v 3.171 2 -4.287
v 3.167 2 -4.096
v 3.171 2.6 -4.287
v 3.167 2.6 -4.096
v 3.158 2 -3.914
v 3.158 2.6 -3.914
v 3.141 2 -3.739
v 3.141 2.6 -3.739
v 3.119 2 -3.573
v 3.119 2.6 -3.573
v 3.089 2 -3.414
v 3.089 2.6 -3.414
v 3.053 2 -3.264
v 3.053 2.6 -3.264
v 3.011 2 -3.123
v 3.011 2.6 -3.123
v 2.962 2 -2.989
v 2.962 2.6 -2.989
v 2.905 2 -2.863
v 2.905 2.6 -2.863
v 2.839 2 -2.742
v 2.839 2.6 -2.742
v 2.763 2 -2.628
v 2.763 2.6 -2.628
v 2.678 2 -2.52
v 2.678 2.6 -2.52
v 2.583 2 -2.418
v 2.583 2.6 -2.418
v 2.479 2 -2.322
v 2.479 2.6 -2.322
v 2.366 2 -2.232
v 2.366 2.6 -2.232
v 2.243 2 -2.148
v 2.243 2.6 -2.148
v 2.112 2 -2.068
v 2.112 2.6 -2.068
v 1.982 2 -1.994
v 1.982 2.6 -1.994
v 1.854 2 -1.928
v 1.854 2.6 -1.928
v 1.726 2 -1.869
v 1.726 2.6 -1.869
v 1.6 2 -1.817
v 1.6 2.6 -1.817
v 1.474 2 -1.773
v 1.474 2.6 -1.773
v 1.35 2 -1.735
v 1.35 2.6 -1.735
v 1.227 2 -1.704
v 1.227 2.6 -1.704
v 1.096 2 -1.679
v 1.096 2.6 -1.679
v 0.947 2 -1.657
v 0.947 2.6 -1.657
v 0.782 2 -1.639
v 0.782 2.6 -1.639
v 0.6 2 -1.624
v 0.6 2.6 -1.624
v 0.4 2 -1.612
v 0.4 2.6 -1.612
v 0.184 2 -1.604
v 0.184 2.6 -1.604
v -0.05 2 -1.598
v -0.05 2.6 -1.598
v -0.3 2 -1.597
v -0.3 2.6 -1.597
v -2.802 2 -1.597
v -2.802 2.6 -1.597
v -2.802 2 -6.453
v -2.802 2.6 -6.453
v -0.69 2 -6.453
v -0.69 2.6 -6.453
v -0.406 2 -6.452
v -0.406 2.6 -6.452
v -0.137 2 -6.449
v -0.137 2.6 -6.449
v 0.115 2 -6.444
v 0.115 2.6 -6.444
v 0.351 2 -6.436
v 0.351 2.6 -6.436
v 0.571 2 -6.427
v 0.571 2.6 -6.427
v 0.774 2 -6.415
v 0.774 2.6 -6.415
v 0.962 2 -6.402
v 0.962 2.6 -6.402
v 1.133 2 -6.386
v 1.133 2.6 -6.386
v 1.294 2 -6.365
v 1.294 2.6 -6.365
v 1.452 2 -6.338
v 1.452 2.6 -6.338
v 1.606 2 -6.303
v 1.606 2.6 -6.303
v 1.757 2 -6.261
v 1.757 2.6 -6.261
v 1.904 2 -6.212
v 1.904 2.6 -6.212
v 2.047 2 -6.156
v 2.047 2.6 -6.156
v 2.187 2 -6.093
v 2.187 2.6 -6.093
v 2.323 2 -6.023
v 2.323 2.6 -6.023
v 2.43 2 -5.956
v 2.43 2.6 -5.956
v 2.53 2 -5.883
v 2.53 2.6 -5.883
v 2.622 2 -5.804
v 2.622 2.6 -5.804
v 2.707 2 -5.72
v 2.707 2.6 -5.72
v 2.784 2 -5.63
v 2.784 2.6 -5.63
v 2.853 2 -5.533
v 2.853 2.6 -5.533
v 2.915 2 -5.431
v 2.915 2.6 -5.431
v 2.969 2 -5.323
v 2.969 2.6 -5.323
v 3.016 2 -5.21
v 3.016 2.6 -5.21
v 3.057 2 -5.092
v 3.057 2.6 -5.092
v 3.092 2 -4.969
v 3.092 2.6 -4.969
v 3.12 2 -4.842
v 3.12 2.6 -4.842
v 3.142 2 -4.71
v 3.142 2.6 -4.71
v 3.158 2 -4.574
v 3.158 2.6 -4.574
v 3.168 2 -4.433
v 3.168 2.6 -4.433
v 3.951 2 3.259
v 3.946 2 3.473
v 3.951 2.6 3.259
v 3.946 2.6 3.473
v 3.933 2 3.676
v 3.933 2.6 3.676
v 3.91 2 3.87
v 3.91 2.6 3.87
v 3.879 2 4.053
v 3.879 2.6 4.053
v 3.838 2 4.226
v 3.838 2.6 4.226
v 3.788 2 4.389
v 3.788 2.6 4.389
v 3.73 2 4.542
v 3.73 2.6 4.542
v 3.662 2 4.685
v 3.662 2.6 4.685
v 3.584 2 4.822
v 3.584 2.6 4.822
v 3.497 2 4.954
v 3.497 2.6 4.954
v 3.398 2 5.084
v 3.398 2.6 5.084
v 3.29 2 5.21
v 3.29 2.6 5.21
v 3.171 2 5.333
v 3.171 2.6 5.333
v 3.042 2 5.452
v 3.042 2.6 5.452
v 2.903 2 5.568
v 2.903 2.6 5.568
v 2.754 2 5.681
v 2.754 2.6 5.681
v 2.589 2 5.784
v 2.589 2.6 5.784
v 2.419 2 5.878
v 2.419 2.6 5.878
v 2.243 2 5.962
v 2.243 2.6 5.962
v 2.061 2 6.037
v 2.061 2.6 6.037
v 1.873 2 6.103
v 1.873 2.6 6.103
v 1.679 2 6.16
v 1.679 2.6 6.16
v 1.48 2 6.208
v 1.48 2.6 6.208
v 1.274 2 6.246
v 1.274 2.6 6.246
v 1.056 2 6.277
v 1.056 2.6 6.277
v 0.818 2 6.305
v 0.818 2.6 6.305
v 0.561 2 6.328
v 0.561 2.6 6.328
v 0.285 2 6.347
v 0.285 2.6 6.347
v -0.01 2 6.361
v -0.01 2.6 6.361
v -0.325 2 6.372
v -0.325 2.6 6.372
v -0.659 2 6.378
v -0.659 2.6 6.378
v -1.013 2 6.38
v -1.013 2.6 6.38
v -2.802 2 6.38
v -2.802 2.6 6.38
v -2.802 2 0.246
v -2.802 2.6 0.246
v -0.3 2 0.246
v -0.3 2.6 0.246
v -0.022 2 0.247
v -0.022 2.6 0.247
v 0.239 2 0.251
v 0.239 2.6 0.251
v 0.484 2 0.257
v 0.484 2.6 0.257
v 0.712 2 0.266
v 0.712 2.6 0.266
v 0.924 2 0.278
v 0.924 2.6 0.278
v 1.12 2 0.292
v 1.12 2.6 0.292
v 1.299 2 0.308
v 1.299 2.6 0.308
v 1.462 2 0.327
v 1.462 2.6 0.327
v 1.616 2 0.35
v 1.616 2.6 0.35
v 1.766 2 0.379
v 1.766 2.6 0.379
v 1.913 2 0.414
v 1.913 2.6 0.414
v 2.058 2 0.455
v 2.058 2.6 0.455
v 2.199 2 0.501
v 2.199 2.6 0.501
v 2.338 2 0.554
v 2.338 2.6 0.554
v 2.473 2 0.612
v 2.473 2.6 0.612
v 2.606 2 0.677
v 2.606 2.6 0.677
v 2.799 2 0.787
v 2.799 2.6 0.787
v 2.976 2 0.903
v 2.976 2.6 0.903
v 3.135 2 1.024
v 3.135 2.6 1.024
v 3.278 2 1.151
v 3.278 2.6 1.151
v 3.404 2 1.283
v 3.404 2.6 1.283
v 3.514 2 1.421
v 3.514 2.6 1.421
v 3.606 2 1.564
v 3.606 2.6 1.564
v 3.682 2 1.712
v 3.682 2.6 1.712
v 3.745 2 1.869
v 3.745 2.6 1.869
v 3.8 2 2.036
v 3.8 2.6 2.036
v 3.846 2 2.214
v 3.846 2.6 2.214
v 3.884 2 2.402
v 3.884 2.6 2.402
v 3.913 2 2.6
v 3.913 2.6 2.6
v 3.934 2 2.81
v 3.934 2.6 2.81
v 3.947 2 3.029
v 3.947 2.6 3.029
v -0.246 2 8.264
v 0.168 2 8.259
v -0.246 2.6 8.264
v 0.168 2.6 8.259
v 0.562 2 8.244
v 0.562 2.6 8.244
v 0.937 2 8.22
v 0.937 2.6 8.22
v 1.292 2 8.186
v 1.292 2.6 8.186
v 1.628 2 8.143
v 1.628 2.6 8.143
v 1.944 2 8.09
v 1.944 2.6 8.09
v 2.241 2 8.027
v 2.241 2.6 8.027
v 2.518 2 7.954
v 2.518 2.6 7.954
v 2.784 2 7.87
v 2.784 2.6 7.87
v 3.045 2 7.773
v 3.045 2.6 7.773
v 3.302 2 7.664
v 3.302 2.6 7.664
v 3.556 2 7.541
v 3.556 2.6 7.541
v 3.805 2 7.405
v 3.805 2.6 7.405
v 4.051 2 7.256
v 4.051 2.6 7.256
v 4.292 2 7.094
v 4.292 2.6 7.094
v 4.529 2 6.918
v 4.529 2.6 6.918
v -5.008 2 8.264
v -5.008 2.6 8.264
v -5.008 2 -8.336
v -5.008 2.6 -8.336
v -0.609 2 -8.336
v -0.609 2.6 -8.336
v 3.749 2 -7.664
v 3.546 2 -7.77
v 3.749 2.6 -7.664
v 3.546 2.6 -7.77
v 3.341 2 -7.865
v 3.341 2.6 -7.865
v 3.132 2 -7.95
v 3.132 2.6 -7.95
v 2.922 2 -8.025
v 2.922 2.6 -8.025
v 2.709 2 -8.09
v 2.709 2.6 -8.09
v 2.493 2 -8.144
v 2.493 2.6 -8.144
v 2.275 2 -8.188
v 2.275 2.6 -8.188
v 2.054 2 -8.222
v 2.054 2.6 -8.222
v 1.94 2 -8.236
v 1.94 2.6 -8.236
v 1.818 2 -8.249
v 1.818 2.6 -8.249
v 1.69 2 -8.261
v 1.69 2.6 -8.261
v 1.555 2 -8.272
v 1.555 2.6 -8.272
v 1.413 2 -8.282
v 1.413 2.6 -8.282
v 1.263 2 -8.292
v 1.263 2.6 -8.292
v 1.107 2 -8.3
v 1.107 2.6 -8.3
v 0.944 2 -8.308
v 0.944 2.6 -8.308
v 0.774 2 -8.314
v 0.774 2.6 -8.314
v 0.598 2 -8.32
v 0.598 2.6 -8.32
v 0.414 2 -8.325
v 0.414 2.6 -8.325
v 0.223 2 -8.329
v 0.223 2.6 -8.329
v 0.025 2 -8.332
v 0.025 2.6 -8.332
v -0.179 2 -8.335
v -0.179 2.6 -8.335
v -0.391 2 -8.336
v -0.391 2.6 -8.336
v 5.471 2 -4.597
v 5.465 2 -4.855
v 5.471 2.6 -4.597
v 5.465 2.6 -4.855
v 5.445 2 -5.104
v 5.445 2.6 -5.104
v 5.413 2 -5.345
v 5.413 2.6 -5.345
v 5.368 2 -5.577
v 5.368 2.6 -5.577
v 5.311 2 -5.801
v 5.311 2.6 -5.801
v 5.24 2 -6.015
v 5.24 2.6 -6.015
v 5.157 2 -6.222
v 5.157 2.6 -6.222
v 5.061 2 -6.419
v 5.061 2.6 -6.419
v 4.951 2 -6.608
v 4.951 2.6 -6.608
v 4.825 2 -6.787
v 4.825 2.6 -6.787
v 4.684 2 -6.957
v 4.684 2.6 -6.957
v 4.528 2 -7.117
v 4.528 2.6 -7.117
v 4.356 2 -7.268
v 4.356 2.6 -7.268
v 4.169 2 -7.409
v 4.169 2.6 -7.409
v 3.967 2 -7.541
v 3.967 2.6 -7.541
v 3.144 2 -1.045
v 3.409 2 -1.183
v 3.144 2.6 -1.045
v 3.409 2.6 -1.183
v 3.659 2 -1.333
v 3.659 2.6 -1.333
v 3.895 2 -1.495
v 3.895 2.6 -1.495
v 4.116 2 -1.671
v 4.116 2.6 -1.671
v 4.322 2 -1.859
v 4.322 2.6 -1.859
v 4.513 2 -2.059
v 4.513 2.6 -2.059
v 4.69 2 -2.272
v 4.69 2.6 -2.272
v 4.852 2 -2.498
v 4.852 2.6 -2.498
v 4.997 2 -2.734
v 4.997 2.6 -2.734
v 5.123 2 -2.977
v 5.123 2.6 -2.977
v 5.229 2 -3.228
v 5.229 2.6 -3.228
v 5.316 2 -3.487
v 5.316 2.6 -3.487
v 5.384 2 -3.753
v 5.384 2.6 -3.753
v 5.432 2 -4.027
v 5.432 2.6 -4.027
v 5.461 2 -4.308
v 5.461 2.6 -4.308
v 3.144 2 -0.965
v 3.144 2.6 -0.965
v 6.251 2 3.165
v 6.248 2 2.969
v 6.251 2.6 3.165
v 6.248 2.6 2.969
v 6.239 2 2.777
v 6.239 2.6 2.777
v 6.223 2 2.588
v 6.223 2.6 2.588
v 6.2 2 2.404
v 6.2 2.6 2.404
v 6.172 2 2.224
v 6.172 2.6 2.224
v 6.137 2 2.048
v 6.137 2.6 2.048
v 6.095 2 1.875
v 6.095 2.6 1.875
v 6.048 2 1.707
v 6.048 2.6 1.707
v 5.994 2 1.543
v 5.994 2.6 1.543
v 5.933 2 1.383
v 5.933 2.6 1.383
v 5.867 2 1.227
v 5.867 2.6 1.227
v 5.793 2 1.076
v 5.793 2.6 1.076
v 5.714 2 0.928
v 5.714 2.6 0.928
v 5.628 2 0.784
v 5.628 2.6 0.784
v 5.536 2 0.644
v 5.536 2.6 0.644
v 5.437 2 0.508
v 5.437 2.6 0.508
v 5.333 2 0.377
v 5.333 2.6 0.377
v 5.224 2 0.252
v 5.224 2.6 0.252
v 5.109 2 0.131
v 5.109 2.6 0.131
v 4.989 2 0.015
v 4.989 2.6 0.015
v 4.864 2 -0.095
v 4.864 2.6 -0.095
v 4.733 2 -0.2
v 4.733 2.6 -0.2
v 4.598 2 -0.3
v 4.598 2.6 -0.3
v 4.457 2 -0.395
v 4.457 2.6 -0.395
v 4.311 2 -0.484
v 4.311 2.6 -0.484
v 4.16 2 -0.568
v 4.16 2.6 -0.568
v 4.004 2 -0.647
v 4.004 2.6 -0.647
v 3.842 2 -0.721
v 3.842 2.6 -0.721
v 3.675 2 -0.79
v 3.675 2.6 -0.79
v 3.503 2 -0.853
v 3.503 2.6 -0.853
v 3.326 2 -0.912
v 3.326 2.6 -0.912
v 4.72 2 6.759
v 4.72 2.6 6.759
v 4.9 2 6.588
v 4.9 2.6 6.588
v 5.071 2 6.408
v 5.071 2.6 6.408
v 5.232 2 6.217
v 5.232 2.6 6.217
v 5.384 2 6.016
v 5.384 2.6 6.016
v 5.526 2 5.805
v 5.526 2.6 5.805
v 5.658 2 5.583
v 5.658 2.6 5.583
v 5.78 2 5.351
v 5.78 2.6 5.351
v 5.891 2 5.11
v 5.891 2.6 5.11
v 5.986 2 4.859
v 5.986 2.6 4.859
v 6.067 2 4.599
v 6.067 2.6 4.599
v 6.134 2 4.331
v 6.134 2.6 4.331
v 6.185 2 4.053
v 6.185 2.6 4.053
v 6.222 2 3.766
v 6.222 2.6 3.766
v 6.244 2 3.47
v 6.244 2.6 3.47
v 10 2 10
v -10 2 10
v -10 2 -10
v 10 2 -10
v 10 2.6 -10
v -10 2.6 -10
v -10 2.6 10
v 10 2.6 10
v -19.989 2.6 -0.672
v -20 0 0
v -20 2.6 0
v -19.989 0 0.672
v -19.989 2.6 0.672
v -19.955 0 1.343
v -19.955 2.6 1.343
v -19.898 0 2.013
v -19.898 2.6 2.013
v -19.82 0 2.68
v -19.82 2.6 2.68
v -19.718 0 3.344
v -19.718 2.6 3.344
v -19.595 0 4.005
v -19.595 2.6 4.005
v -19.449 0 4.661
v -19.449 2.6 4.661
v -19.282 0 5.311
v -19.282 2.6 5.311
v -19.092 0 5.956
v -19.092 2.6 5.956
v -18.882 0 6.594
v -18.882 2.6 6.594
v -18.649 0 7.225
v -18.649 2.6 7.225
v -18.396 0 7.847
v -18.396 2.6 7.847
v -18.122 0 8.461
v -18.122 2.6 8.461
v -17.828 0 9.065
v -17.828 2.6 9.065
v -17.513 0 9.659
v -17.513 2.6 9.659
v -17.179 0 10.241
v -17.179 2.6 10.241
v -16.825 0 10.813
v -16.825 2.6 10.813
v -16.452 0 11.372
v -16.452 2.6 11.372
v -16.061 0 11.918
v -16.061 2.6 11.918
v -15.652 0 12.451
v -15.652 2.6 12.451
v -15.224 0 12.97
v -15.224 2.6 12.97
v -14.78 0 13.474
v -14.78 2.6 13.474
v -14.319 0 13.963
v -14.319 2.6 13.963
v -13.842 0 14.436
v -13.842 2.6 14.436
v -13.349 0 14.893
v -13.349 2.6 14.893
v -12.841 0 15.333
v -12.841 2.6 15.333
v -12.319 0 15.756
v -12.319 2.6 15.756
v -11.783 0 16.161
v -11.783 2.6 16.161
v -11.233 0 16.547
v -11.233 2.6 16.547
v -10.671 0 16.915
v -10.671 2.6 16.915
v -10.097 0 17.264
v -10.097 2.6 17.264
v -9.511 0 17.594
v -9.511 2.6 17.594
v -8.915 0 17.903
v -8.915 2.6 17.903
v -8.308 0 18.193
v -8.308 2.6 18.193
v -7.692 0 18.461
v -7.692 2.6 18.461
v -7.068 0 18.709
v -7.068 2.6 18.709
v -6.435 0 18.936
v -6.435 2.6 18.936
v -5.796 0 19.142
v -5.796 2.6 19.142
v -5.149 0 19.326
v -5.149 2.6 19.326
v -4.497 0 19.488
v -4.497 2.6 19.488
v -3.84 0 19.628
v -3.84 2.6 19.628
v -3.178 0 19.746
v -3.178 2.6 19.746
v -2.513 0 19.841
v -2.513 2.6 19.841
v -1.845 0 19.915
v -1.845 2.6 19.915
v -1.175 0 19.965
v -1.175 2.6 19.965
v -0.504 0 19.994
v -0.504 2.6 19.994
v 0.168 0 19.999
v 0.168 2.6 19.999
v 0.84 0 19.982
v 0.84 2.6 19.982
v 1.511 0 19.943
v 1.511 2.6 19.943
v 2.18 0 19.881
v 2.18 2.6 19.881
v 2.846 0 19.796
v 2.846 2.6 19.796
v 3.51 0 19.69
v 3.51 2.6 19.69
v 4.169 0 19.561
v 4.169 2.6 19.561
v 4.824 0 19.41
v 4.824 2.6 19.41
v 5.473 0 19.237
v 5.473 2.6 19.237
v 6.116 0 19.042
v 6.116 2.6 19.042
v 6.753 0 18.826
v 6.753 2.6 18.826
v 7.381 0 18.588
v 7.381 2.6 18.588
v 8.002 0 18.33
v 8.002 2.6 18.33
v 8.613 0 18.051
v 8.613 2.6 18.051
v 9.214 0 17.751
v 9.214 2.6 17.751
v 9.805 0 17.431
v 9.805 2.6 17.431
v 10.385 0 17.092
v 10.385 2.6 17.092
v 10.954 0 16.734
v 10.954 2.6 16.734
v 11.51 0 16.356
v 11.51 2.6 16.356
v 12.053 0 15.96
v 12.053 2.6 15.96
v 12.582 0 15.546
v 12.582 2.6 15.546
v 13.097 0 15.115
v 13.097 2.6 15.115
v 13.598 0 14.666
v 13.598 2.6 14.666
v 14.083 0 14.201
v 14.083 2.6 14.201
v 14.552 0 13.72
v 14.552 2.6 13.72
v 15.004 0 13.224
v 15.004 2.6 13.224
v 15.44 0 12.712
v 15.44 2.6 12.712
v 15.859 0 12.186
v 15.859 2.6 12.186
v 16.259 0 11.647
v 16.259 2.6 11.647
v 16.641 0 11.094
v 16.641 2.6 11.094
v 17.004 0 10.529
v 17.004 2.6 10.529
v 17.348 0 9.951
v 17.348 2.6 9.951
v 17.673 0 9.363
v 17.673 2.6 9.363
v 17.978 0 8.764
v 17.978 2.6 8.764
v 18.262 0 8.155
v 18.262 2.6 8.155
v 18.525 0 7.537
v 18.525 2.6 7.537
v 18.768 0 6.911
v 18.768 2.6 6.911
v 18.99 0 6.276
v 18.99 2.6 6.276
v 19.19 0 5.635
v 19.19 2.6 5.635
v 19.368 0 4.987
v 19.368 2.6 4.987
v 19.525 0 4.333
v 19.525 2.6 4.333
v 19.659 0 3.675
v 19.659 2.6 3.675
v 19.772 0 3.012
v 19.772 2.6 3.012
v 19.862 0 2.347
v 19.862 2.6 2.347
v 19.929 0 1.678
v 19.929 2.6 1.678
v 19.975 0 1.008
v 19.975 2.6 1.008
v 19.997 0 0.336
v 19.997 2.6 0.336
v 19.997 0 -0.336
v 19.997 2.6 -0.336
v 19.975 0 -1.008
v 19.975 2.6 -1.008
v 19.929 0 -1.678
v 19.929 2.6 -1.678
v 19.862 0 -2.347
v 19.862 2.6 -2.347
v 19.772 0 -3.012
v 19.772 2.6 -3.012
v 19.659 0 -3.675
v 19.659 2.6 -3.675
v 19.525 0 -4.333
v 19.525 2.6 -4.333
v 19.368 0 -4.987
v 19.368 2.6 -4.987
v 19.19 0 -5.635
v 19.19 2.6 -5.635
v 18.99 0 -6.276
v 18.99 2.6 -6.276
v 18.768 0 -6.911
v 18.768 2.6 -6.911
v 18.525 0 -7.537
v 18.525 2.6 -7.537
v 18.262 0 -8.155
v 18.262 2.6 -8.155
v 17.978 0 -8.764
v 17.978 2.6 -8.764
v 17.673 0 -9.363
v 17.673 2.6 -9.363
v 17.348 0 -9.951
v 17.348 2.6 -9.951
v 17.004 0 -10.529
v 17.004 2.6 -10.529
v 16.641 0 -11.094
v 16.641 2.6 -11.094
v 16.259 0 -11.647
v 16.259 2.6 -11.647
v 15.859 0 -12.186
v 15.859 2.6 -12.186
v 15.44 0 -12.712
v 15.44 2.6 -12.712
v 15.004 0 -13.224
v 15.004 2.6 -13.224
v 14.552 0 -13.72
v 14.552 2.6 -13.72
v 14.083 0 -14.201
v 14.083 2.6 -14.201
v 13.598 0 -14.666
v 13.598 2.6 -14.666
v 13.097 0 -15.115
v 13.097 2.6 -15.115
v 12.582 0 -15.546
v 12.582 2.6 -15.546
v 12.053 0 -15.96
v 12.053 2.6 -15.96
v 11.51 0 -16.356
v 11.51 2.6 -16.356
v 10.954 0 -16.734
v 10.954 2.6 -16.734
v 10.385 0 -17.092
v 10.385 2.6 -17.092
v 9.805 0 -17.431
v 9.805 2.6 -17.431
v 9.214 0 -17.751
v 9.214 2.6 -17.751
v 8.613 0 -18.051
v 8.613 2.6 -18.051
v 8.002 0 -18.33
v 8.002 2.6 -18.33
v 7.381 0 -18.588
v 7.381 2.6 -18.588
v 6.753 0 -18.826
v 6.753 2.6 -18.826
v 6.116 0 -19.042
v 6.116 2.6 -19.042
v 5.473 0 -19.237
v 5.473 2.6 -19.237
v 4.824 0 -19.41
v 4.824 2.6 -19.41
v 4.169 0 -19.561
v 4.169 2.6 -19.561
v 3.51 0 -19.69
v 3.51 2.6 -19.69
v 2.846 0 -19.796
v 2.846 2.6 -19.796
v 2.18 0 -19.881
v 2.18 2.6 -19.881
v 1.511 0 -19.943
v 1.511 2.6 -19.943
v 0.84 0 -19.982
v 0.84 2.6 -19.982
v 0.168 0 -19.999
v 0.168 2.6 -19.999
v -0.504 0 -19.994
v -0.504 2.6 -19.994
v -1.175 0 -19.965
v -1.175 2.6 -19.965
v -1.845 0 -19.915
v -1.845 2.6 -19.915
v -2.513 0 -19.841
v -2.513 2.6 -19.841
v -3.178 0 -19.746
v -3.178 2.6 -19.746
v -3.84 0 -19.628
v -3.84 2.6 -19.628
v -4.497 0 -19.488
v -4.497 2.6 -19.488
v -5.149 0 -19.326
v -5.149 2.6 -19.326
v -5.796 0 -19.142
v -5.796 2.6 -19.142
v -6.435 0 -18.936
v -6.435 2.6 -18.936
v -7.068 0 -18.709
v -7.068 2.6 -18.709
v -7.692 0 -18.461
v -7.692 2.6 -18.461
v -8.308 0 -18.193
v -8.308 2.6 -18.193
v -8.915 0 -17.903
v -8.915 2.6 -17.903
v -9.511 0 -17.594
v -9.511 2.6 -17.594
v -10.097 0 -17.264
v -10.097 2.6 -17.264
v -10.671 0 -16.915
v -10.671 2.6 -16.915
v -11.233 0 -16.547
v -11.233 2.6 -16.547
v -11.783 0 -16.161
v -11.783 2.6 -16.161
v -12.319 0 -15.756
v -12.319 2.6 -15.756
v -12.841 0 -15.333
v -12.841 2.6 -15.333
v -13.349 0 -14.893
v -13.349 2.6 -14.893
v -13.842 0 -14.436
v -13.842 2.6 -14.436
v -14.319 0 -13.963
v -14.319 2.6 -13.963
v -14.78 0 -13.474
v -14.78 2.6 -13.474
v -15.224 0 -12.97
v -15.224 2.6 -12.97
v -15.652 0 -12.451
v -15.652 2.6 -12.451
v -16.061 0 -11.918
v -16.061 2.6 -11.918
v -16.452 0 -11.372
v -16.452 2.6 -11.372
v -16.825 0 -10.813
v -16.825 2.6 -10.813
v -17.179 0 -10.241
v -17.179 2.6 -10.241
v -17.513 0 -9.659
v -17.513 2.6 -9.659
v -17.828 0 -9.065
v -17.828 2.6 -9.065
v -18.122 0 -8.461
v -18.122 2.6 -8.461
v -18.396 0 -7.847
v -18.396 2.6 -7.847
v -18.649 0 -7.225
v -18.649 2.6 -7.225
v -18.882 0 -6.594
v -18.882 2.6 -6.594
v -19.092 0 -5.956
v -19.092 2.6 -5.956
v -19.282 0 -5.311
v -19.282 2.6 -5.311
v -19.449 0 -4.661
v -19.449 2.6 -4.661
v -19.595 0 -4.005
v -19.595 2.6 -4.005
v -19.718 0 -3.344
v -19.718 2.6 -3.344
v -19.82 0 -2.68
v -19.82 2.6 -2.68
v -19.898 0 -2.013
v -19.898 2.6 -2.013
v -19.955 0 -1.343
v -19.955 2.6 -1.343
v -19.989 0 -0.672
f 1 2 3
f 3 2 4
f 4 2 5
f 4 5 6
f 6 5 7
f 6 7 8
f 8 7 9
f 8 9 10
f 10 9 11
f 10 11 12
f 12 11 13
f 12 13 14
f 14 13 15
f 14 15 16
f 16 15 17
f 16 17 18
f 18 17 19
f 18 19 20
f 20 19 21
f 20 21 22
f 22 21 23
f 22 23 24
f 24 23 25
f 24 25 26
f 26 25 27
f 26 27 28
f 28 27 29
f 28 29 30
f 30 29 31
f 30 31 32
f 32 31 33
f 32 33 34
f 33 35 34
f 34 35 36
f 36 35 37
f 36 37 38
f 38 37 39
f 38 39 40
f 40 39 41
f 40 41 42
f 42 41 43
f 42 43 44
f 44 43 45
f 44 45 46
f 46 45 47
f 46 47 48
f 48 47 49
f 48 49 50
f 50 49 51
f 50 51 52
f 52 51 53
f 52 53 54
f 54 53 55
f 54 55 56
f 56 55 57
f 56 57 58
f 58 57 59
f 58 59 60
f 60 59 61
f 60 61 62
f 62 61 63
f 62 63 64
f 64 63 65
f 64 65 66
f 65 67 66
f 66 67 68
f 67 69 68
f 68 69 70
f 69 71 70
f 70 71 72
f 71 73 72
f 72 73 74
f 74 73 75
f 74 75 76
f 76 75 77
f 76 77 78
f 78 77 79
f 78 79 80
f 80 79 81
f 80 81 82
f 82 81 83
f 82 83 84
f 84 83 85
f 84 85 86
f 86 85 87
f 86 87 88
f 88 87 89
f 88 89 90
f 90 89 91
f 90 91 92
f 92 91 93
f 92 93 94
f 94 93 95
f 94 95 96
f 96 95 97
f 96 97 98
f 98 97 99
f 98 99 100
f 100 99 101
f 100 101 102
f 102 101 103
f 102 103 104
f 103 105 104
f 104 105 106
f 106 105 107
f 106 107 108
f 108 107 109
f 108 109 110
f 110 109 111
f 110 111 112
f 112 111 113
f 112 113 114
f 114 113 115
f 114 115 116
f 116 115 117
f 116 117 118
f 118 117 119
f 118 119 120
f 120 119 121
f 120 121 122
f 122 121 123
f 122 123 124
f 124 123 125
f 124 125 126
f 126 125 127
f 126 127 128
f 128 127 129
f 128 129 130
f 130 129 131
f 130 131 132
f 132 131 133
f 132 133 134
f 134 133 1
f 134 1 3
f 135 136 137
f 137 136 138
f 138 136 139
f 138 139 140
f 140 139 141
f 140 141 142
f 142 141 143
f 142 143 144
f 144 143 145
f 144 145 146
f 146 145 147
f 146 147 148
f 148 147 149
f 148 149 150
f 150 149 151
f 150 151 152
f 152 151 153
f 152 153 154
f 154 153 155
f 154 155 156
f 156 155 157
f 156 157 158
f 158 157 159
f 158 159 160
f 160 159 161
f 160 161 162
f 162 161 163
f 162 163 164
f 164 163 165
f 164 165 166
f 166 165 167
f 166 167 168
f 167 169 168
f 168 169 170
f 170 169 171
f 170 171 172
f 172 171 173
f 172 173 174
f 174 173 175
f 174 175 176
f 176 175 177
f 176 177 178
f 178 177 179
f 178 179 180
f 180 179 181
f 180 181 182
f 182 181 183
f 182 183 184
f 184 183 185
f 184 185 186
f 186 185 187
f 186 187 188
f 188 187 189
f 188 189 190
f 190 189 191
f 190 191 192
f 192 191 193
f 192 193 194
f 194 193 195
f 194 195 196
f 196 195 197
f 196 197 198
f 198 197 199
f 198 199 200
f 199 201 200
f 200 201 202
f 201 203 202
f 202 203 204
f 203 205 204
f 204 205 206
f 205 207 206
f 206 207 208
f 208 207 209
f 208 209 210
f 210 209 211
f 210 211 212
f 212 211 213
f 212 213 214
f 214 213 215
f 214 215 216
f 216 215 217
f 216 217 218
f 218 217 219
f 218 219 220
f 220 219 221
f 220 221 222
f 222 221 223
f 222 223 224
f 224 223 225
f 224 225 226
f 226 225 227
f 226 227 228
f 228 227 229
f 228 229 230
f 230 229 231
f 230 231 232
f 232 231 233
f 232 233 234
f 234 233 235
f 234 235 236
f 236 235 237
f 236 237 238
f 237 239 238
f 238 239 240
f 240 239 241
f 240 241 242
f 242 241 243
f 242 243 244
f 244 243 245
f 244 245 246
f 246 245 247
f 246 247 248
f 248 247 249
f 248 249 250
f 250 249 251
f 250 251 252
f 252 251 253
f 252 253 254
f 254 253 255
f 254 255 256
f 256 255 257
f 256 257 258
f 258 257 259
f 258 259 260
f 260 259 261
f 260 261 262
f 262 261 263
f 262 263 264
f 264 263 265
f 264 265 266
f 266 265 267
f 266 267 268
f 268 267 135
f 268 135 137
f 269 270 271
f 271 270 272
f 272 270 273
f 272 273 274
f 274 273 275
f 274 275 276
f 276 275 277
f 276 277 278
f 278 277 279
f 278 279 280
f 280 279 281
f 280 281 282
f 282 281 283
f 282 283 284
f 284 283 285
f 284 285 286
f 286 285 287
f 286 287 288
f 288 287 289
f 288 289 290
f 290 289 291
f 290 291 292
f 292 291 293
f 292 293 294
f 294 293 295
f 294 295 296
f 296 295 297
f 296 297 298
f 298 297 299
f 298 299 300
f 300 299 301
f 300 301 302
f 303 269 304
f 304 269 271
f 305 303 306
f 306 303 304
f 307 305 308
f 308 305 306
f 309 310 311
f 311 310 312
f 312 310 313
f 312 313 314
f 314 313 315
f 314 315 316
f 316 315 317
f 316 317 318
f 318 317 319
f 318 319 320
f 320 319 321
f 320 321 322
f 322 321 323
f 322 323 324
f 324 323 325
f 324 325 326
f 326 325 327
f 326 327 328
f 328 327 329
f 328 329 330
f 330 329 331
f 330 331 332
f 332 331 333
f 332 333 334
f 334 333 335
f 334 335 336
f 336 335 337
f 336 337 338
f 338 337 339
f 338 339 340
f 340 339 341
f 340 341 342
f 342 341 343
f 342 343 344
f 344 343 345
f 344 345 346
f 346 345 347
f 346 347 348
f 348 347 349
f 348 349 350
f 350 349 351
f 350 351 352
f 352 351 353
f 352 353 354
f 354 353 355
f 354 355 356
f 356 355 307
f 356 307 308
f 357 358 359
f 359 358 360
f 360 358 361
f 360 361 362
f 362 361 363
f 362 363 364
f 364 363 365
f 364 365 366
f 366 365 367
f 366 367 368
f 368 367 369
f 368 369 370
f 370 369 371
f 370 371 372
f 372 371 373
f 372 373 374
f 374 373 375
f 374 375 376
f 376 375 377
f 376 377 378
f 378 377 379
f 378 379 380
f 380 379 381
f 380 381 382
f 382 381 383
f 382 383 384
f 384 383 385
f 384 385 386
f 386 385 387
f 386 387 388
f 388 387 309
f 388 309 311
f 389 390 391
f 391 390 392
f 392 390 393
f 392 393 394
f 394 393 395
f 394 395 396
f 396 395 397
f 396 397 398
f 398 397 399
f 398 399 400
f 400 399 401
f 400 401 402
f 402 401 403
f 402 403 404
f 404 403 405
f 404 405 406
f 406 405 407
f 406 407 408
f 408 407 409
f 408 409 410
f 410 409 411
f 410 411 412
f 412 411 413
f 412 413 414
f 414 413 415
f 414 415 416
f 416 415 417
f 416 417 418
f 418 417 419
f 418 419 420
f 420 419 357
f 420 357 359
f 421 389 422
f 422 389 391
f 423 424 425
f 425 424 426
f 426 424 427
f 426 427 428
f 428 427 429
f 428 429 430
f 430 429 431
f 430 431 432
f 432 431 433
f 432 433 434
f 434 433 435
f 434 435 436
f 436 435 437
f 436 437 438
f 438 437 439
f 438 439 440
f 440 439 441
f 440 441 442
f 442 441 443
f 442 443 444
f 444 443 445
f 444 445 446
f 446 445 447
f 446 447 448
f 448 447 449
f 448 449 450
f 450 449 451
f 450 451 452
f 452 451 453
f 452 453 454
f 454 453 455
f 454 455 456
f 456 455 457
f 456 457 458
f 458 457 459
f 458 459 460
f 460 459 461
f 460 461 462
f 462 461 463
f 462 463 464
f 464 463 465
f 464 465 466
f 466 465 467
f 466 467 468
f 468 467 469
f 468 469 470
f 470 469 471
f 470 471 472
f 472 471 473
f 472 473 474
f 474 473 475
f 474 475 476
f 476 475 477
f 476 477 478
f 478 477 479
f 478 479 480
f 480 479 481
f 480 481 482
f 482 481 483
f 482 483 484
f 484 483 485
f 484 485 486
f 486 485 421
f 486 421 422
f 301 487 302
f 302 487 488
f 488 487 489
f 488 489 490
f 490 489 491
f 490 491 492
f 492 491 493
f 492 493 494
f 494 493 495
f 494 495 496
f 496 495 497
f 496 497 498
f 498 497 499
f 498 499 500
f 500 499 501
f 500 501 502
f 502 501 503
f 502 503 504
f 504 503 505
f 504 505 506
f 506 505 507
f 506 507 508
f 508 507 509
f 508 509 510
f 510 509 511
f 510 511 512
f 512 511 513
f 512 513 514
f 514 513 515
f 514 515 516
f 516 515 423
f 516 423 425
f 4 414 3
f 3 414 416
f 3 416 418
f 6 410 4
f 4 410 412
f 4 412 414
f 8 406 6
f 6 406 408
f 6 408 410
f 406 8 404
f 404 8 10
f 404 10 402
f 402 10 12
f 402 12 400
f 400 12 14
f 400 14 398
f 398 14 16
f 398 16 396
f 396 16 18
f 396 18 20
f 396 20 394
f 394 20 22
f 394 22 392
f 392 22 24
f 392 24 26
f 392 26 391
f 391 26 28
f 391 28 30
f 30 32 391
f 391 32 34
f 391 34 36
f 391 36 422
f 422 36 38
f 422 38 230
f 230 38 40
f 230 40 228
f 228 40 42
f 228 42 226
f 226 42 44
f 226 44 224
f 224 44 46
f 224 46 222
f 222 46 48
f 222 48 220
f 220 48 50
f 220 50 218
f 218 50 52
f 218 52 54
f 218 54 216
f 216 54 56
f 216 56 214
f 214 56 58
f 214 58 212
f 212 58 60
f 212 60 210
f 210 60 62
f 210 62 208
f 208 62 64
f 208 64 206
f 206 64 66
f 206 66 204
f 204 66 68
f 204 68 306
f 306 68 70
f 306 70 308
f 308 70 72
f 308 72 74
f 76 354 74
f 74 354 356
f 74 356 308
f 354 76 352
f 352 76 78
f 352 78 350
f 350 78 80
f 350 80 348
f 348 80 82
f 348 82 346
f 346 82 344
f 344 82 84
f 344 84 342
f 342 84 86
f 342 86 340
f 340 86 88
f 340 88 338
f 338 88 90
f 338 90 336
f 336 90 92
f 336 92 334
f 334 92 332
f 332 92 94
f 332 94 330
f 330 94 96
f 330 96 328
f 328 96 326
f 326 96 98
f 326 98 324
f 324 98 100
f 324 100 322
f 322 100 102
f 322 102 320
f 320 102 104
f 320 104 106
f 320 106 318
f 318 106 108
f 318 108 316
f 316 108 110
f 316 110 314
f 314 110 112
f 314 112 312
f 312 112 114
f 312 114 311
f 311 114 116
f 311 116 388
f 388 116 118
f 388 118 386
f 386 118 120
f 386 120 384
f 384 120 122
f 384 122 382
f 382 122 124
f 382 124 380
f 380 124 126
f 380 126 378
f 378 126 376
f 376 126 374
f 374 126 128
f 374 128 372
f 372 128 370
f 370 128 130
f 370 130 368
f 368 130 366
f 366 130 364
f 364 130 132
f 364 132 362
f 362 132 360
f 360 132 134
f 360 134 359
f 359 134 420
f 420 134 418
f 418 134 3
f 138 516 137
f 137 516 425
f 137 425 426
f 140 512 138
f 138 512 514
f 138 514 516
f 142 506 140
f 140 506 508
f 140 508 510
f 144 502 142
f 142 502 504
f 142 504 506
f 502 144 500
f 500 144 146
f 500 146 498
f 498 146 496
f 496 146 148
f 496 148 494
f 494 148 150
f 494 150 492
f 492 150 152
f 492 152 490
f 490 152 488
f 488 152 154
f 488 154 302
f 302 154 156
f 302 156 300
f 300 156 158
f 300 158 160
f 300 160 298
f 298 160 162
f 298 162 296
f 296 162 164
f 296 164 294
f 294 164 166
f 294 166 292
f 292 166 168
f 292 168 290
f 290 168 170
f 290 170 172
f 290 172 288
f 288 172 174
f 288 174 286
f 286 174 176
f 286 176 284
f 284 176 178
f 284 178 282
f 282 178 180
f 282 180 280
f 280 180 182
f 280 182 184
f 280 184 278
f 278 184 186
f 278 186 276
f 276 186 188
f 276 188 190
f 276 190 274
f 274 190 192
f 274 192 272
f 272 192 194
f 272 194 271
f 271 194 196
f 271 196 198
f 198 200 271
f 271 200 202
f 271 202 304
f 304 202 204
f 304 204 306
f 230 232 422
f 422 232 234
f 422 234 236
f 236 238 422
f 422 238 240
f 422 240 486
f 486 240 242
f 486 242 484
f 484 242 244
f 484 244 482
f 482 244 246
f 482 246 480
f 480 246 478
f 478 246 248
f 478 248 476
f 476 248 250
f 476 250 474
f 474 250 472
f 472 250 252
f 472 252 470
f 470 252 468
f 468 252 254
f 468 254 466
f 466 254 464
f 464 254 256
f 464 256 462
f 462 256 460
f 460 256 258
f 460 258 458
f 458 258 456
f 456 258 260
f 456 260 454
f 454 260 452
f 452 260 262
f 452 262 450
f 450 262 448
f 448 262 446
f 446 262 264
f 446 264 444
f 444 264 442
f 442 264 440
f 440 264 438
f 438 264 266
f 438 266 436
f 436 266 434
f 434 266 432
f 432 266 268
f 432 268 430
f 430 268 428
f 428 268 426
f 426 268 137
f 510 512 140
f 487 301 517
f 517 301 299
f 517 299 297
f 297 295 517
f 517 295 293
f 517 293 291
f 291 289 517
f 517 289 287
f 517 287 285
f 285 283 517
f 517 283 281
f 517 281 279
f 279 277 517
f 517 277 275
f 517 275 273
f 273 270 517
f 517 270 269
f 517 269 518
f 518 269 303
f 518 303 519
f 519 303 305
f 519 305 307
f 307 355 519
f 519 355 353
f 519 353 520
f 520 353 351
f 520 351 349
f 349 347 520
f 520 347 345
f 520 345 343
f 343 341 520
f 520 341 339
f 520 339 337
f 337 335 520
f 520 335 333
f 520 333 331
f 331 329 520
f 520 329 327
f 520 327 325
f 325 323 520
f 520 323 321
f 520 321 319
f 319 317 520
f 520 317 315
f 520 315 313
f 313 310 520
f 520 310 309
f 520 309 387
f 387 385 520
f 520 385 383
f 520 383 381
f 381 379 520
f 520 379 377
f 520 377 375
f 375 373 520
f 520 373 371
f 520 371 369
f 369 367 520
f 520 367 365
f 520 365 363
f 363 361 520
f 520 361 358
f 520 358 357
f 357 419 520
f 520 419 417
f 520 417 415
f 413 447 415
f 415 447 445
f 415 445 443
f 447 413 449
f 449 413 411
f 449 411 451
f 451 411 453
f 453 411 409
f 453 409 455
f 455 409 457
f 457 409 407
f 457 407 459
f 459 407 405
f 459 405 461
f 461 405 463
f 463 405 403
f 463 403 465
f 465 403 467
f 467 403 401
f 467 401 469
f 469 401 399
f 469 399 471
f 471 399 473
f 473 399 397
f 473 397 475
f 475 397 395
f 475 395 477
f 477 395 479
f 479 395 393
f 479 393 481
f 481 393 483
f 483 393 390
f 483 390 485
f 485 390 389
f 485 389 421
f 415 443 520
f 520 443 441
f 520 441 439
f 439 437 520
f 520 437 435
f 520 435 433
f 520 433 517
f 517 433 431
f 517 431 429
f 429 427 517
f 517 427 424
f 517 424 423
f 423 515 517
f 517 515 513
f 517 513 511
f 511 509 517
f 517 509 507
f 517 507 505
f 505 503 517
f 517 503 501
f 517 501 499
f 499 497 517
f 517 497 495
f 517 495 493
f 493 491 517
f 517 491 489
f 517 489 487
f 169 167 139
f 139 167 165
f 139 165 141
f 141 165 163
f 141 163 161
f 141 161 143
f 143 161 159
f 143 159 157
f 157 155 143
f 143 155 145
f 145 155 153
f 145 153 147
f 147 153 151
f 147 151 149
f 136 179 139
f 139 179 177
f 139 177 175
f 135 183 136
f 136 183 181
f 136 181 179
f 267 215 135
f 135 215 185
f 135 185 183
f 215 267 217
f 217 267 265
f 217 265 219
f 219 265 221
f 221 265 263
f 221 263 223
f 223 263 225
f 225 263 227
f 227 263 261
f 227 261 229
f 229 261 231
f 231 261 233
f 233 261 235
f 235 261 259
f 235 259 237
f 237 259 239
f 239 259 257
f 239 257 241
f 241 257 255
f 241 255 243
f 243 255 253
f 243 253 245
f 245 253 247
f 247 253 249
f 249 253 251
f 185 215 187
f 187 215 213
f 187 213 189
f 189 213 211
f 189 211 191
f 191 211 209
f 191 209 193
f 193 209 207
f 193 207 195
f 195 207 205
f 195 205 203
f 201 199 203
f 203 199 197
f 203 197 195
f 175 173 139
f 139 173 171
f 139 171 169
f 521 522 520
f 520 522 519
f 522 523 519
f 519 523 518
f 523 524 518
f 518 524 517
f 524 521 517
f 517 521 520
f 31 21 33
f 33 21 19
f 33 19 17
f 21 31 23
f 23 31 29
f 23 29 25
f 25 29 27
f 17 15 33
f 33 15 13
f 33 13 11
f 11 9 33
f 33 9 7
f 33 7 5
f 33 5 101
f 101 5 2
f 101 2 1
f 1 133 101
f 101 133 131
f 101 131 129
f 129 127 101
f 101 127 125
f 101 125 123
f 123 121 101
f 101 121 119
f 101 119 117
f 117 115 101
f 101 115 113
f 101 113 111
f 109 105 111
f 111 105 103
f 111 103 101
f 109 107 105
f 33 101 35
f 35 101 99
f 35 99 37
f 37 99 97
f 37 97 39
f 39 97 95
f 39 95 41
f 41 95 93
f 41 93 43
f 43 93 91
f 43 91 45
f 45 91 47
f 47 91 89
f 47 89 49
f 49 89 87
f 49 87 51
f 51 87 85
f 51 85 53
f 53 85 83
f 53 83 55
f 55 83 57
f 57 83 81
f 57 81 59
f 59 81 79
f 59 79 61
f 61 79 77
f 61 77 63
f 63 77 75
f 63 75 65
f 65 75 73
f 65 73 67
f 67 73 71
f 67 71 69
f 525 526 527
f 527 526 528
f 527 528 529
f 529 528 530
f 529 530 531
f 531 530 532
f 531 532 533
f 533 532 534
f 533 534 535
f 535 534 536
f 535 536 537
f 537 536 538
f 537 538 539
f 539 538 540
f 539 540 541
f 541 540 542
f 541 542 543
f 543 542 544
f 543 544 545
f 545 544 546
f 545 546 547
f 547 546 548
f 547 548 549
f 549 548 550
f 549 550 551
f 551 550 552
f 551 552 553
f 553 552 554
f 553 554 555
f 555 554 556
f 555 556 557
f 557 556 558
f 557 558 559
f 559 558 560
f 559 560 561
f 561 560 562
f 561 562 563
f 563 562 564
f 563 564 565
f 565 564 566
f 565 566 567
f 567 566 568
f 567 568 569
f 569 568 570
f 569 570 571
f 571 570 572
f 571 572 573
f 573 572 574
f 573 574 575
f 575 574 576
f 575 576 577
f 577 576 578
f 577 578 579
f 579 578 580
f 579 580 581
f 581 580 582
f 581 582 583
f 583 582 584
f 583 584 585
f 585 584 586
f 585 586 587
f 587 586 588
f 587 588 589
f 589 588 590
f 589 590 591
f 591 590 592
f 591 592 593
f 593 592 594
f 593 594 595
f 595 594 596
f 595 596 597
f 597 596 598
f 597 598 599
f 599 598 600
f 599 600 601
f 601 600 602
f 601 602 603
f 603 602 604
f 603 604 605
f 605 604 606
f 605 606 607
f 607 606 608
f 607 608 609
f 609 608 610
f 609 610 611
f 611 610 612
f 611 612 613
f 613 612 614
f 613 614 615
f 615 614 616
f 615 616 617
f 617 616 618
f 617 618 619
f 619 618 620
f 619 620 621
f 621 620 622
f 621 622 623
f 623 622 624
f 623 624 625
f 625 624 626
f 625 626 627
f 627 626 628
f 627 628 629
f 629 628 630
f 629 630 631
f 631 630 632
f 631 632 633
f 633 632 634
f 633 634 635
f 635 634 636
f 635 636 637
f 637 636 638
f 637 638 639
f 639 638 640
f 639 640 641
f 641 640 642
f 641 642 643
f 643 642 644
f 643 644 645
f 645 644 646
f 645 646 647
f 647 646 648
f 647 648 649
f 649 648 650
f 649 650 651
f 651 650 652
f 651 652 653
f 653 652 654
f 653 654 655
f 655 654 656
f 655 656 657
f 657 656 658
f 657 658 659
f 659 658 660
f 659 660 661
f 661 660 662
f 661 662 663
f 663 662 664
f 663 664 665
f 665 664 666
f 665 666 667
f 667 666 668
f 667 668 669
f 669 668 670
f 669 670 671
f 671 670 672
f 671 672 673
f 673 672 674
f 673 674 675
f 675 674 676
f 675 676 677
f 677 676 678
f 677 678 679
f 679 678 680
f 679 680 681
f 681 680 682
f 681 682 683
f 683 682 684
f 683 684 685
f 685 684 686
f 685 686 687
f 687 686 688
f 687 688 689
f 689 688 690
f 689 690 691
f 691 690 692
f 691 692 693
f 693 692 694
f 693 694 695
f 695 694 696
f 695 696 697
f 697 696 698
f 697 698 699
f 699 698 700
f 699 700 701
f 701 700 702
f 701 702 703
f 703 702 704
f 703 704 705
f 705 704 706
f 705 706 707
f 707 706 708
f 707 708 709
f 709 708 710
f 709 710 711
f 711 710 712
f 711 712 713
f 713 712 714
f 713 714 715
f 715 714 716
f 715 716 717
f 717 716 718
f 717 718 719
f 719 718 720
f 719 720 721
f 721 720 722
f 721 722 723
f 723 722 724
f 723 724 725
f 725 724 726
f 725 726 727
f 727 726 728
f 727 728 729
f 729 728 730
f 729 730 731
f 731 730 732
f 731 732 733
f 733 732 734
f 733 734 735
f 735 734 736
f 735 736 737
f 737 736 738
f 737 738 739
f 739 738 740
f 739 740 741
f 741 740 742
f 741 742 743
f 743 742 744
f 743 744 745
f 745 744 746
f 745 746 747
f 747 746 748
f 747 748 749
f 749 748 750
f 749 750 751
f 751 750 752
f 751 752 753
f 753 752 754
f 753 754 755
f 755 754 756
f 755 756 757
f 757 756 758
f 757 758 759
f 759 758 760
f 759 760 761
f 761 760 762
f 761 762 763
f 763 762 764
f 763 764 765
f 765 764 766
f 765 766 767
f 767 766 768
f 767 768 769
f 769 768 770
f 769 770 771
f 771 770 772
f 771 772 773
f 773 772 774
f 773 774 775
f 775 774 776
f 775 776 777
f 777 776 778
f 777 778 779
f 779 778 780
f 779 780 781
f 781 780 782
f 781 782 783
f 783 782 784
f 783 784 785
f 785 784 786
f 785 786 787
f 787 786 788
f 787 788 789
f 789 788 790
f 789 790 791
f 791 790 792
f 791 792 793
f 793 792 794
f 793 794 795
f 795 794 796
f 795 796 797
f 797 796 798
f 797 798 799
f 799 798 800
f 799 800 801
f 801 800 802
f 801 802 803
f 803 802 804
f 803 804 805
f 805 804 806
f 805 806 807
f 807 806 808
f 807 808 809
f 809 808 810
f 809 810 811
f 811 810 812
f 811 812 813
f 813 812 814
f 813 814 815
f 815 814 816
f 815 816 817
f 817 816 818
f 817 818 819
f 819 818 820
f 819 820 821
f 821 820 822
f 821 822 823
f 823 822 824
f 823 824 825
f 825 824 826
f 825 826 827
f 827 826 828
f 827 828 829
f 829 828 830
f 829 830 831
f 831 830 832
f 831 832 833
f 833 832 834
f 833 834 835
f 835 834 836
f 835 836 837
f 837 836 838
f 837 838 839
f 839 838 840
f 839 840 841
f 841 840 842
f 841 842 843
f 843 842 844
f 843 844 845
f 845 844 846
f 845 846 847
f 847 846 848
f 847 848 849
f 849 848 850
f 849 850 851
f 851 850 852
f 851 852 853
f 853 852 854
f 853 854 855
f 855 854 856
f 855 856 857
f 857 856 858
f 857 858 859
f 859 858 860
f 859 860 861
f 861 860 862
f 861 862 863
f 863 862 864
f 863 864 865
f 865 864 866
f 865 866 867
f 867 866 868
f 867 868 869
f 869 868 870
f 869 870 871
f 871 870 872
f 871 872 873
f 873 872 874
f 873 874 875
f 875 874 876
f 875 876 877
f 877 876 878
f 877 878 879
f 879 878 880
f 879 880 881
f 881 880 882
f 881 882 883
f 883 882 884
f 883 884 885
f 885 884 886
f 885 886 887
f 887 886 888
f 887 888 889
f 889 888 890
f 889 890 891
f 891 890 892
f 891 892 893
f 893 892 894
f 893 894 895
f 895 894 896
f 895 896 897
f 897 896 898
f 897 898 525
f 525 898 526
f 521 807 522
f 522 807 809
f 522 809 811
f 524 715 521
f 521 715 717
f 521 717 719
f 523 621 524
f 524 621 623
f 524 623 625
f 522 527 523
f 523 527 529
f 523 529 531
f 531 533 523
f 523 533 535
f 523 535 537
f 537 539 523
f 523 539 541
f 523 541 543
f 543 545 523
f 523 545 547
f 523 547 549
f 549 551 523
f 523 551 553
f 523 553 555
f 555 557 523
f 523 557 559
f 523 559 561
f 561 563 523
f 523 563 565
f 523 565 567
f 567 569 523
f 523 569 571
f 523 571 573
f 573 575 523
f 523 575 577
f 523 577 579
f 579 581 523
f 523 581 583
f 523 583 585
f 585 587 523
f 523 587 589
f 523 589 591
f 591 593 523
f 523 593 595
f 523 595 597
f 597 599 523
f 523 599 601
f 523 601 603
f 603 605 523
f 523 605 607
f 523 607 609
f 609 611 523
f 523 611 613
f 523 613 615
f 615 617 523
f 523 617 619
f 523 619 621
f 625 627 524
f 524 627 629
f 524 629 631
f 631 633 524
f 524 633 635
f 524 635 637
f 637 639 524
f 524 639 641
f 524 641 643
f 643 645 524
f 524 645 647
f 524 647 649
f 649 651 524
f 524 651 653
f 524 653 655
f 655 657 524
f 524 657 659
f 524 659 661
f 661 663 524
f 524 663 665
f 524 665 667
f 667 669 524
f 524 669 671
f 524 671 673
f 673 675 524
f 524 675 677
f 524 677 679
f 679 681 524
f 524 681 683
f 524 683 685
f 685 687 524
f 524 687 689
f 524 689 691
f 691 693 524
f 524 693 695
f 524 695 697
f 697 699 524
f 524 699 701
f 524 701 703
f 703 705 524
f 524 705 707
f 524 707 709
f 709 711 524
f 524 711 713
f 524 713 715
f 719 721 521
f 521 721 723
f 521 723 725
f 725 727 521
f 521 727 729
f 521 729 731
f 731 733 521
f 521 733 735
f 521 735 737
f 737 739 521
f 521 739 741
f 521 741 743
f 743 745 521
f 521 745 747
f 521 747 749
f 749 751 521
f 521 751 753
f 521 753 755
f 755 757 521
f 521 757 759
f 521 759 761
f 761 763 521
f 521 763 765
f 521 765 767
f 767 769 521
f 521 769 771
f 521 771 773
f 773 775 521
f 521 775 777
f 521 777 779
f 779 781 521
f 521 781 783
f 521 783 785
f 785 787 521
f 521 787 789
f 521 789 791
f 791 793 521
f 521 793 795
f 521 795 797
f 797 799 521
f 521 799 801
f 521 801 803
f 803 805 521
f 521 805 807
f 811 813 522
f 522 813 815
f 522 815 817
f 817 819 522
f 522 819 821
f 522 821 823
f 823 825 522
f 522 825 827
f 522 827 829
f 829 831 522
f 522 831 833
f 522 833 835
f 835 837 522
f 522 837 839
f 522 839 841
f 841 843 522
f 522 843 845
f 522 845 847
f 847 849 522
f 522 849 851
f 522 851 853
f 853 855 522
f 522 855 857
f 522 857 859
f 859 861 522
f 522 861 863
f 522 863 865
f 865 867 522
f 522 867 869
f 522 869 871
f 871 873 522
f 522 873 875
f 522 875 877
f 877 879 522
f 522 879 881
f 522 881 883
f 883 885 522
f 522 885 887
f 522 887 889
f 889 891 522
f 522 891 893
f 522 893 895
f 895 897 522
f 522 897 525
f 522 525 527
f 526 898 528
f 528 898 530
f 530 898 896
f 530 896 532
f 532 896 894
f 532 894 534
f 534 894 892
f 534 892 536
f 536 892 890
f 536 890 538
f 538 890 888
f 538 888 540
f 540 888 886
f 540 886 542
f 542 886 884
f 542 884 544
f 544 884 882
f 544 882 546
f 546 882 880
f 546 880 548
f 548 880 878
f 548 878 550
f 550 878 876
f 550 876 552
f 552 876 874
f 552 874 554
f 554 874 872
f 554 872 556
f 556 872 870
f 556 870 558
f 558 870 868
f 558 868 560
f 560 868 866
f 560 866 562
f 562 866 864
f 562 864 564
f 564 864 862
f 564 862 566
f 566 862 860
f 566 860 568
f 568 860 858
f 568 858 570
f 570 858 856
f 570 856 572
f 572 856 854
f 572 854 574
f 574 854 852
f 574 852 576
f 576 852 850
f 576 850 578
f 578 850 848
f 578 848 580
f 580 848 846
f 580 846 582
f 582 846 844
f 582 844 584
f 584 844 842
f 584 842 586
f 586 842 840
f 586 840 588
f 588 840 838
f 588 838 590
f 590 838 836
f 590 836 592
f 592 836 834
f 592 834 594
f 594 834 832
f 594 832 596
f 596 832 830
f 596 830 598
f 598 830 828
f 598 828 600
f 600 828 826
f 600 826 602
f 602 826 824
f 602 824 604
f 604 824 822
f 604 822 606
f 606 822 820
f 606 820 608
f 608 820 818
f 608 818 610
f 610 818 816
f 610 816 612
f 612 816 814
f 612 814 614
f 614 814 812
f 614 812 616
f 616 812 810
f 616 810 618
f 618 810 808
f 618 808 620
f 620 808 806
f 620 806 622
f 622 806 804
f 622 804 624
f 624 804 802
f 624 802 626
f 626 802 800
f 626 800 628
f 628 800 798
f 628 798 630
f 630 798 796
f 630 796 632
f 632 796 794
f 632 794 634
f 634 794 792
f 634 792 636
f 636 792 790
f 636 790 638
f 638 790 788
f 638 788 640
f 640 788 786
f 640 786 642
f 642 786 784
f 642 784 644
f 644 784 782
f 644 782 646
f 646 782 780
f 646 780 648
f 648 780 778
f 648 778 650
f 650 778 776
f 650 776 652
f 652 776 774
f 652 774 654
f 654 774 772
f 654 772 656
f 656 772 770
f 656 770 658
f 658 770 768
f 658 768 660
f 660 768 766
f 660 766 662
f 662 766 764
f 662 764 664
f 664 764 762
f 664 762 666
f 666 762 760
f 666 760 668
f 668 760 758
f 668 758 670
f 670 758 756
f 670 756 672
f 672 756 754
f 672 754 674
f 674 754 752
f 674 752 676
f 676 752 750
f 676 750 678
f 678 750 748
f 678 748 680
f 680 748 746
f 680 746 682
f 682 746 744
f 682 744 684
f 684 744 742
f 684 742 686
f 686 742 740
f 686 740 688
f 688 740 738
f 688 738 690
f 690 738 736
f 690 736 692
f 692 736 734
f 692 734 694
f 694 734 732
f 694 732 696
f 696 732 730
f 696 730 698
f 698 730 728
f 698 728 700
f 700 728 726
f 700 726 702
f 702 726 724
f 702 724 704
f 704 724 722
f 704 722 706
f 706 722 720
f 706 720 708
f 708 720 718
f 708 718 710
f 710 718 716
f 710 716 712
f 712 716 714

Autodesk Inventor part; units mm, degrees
ref_plane "YZ Plane" through (0, 0, 0) normal (1, 0, 0) x (0, 1, 0)
ref_plane "XZ Plane" through (0, 0, 0) normal (0, 1, 0) x (-1, 0, 0)
ref_plane "XY Plane" through (0, 0, 0) normal (0, 0, 1) x (1, 0, 0)
sketch "Sketch1" plane through (0, 0, 0) normal (0, 1, 0) x (-1, 0, 0)
  circle A0 centre (0, 0) radius 20
  dimension "d0" = 40
extrude "Extrusion1" add sketch "Sketch1" along normal blind 2.6
sketch "Sketch2" plane through (0, 2.6, 0) normal (0, 1, 0) x (1, 0, 0)
  line L0 (-10, -10) -> (-10, 10)
  line L1 (-10, 10) -> (10, 10)
  line L2 (10, 10) -> (10, -10)
  line L3 (10, -10) -> (-10, -10)
  line L4 (-10, -10) -> (10, 10) construction
  line L5 (-10, 10) -> (10, -10) construction
  point P0 (0, 0)
  dimension "d3" = 20
  dimension "d4" = 20
extrude "Extrusion2" cut sketch "Sketch2" against normal blind 0.6
sketch "Sketch3" plane through (0, 2, 0) normal (0, 1, 0) x (1, 0, 0)
  line L0 (-6.6897, 8.3364) -> (6.7624, 8.3364) construction
  line L1 (6.7624, 8.3364) -> (6.7624, -8.2636) construction
  line L2 (6.7624, -8.2636) -> (-6.6897, -8.2636) construction
  line L3 (-6.6897, -8.2636) -> (-6.6897, 8.3364) construction
  spline S0 degree 2 poles (6.2513, -3.1653) (6.2513, -4.4029) (5.3096, -6.2996) (4.5294, -6.9184) knots 0 0 0 1 2 2 2
  spline S1 degree 2 poles (4.5294, -6.9184) (3.5877, -7.6448) (1.4488, -8.2636) (-0.2461, -8.2636) knots 0 0 0 1 2 2 2
  line L4 (-0.2461, -8.2636) -> (-5.0082, -8.2636)
  line L5 (-5.0082, -8.2636) -> (-5.0082, 8.3364)
  line L6 (-5.0082, 8.3364) -> (-0.6094, 8.3364)
  spline S2 degree 2 poles (-0.6094, 8.3364) (1.1663, 8.3364) (2.942, 8.1077) (3.7492, 7.6637) knots 0 0 0 1 2 2 2
  spline S3 degree 2 poles (3.7492, 7.6637) (4.6505, 7.1929) (5.471, 5.6459) (5.471, 4.5966) knots 0 0 0 1 2 2 2
  spline S4 degree 2 poles (5.471, 4.5966) (5.471, 3.4263) (4.2334, 1.5699) (3.1438, 1.0453) knots 0 0 0 1 2 2 2
  line L7 (3.1438, 1.0453) -> (3.1438, 0.9646)
  spline S5 degree 2 poles (3.1438, 0.9646) (4.6235, 0.561) (6.2513, -1.5779) (6.2513, -3.1653) knots 0 0 0 1 2 2 2
  spline S6 degree 2 poles (3.9509, -3.2594) (3.9509, -2.3178) (3.4129, -1.1071) (2.6057, -0.6766) knots 0 0 0 1 2 2 2
  spline S7 degree 2 poles (2.6057, -0.6766) (2.0811, -0.4076) (0.8435, -0.2461) (-0.3, -0.2461) knots 0 0 0 1 2 2 2
  line L8 (-0.3, -0.2461) -> (-2.8021, -0.2461)
  line L9 (-2.8021, -0.2461) -> (-2.8021, -6.3803)
  line L10 (-2.8021, -6.3803) -> (-1.0129, -6.3803)
  spline S8 degree 2 poles (-1.0129, -6.3803) (0.4399, -6.3803) (2.108, -6.1113) (2.7537, -5.6808) knots 0 0 0 1 2 2 2
  spline S9 degree 2 poles (2.7537, -5.6808) (3.3725, -5.2369) (3.9509, -4.1338) (3.9509, -3.2594) knots 0 0 0 1 2 2 2
  spline S10 degree 2 poles (3.1707, 4.2872) (3.1707, 4.8791) (2.7671, 5.767) (2.3232, 6.0226) knots 0 0 0 1 2 2 2
  spline S11 degree 2 poles (2.3232, 6.0226) (1.7851, 6.3185) (0.4803, 6.453) (-0.6901, 6.453) knots 0 0 0 1 2 2 2
  line L11 (-0.6901, 6.453) -> (-2.8021, 6.453)
  line L12 (-2.8021, 6.453) -> (-2.8021, 1.5968)
  line L13 (-2.8021, 1.5968) -> (-0.3, 1.5968)
  spline S12 degree 2 poles (-0.3, 1.5968) (0.7359, 1.5968) (1.7179, 1.812) (2.2425, 2.1483) knots 0 0 0 1 2 2 2
  spline S13 degree 2 poles (2.2425, 2.1483) (2.7537, 2.4712) (3.1707, 3.507) (3.1707, 4.2872) knots 0 0 0 1 2 2 2
  point P0 (0, 0)
extrude "Extrusion3" add sketch "Sketch3" along normal blind 0.6
properties part number "TopMarkerPreset"
